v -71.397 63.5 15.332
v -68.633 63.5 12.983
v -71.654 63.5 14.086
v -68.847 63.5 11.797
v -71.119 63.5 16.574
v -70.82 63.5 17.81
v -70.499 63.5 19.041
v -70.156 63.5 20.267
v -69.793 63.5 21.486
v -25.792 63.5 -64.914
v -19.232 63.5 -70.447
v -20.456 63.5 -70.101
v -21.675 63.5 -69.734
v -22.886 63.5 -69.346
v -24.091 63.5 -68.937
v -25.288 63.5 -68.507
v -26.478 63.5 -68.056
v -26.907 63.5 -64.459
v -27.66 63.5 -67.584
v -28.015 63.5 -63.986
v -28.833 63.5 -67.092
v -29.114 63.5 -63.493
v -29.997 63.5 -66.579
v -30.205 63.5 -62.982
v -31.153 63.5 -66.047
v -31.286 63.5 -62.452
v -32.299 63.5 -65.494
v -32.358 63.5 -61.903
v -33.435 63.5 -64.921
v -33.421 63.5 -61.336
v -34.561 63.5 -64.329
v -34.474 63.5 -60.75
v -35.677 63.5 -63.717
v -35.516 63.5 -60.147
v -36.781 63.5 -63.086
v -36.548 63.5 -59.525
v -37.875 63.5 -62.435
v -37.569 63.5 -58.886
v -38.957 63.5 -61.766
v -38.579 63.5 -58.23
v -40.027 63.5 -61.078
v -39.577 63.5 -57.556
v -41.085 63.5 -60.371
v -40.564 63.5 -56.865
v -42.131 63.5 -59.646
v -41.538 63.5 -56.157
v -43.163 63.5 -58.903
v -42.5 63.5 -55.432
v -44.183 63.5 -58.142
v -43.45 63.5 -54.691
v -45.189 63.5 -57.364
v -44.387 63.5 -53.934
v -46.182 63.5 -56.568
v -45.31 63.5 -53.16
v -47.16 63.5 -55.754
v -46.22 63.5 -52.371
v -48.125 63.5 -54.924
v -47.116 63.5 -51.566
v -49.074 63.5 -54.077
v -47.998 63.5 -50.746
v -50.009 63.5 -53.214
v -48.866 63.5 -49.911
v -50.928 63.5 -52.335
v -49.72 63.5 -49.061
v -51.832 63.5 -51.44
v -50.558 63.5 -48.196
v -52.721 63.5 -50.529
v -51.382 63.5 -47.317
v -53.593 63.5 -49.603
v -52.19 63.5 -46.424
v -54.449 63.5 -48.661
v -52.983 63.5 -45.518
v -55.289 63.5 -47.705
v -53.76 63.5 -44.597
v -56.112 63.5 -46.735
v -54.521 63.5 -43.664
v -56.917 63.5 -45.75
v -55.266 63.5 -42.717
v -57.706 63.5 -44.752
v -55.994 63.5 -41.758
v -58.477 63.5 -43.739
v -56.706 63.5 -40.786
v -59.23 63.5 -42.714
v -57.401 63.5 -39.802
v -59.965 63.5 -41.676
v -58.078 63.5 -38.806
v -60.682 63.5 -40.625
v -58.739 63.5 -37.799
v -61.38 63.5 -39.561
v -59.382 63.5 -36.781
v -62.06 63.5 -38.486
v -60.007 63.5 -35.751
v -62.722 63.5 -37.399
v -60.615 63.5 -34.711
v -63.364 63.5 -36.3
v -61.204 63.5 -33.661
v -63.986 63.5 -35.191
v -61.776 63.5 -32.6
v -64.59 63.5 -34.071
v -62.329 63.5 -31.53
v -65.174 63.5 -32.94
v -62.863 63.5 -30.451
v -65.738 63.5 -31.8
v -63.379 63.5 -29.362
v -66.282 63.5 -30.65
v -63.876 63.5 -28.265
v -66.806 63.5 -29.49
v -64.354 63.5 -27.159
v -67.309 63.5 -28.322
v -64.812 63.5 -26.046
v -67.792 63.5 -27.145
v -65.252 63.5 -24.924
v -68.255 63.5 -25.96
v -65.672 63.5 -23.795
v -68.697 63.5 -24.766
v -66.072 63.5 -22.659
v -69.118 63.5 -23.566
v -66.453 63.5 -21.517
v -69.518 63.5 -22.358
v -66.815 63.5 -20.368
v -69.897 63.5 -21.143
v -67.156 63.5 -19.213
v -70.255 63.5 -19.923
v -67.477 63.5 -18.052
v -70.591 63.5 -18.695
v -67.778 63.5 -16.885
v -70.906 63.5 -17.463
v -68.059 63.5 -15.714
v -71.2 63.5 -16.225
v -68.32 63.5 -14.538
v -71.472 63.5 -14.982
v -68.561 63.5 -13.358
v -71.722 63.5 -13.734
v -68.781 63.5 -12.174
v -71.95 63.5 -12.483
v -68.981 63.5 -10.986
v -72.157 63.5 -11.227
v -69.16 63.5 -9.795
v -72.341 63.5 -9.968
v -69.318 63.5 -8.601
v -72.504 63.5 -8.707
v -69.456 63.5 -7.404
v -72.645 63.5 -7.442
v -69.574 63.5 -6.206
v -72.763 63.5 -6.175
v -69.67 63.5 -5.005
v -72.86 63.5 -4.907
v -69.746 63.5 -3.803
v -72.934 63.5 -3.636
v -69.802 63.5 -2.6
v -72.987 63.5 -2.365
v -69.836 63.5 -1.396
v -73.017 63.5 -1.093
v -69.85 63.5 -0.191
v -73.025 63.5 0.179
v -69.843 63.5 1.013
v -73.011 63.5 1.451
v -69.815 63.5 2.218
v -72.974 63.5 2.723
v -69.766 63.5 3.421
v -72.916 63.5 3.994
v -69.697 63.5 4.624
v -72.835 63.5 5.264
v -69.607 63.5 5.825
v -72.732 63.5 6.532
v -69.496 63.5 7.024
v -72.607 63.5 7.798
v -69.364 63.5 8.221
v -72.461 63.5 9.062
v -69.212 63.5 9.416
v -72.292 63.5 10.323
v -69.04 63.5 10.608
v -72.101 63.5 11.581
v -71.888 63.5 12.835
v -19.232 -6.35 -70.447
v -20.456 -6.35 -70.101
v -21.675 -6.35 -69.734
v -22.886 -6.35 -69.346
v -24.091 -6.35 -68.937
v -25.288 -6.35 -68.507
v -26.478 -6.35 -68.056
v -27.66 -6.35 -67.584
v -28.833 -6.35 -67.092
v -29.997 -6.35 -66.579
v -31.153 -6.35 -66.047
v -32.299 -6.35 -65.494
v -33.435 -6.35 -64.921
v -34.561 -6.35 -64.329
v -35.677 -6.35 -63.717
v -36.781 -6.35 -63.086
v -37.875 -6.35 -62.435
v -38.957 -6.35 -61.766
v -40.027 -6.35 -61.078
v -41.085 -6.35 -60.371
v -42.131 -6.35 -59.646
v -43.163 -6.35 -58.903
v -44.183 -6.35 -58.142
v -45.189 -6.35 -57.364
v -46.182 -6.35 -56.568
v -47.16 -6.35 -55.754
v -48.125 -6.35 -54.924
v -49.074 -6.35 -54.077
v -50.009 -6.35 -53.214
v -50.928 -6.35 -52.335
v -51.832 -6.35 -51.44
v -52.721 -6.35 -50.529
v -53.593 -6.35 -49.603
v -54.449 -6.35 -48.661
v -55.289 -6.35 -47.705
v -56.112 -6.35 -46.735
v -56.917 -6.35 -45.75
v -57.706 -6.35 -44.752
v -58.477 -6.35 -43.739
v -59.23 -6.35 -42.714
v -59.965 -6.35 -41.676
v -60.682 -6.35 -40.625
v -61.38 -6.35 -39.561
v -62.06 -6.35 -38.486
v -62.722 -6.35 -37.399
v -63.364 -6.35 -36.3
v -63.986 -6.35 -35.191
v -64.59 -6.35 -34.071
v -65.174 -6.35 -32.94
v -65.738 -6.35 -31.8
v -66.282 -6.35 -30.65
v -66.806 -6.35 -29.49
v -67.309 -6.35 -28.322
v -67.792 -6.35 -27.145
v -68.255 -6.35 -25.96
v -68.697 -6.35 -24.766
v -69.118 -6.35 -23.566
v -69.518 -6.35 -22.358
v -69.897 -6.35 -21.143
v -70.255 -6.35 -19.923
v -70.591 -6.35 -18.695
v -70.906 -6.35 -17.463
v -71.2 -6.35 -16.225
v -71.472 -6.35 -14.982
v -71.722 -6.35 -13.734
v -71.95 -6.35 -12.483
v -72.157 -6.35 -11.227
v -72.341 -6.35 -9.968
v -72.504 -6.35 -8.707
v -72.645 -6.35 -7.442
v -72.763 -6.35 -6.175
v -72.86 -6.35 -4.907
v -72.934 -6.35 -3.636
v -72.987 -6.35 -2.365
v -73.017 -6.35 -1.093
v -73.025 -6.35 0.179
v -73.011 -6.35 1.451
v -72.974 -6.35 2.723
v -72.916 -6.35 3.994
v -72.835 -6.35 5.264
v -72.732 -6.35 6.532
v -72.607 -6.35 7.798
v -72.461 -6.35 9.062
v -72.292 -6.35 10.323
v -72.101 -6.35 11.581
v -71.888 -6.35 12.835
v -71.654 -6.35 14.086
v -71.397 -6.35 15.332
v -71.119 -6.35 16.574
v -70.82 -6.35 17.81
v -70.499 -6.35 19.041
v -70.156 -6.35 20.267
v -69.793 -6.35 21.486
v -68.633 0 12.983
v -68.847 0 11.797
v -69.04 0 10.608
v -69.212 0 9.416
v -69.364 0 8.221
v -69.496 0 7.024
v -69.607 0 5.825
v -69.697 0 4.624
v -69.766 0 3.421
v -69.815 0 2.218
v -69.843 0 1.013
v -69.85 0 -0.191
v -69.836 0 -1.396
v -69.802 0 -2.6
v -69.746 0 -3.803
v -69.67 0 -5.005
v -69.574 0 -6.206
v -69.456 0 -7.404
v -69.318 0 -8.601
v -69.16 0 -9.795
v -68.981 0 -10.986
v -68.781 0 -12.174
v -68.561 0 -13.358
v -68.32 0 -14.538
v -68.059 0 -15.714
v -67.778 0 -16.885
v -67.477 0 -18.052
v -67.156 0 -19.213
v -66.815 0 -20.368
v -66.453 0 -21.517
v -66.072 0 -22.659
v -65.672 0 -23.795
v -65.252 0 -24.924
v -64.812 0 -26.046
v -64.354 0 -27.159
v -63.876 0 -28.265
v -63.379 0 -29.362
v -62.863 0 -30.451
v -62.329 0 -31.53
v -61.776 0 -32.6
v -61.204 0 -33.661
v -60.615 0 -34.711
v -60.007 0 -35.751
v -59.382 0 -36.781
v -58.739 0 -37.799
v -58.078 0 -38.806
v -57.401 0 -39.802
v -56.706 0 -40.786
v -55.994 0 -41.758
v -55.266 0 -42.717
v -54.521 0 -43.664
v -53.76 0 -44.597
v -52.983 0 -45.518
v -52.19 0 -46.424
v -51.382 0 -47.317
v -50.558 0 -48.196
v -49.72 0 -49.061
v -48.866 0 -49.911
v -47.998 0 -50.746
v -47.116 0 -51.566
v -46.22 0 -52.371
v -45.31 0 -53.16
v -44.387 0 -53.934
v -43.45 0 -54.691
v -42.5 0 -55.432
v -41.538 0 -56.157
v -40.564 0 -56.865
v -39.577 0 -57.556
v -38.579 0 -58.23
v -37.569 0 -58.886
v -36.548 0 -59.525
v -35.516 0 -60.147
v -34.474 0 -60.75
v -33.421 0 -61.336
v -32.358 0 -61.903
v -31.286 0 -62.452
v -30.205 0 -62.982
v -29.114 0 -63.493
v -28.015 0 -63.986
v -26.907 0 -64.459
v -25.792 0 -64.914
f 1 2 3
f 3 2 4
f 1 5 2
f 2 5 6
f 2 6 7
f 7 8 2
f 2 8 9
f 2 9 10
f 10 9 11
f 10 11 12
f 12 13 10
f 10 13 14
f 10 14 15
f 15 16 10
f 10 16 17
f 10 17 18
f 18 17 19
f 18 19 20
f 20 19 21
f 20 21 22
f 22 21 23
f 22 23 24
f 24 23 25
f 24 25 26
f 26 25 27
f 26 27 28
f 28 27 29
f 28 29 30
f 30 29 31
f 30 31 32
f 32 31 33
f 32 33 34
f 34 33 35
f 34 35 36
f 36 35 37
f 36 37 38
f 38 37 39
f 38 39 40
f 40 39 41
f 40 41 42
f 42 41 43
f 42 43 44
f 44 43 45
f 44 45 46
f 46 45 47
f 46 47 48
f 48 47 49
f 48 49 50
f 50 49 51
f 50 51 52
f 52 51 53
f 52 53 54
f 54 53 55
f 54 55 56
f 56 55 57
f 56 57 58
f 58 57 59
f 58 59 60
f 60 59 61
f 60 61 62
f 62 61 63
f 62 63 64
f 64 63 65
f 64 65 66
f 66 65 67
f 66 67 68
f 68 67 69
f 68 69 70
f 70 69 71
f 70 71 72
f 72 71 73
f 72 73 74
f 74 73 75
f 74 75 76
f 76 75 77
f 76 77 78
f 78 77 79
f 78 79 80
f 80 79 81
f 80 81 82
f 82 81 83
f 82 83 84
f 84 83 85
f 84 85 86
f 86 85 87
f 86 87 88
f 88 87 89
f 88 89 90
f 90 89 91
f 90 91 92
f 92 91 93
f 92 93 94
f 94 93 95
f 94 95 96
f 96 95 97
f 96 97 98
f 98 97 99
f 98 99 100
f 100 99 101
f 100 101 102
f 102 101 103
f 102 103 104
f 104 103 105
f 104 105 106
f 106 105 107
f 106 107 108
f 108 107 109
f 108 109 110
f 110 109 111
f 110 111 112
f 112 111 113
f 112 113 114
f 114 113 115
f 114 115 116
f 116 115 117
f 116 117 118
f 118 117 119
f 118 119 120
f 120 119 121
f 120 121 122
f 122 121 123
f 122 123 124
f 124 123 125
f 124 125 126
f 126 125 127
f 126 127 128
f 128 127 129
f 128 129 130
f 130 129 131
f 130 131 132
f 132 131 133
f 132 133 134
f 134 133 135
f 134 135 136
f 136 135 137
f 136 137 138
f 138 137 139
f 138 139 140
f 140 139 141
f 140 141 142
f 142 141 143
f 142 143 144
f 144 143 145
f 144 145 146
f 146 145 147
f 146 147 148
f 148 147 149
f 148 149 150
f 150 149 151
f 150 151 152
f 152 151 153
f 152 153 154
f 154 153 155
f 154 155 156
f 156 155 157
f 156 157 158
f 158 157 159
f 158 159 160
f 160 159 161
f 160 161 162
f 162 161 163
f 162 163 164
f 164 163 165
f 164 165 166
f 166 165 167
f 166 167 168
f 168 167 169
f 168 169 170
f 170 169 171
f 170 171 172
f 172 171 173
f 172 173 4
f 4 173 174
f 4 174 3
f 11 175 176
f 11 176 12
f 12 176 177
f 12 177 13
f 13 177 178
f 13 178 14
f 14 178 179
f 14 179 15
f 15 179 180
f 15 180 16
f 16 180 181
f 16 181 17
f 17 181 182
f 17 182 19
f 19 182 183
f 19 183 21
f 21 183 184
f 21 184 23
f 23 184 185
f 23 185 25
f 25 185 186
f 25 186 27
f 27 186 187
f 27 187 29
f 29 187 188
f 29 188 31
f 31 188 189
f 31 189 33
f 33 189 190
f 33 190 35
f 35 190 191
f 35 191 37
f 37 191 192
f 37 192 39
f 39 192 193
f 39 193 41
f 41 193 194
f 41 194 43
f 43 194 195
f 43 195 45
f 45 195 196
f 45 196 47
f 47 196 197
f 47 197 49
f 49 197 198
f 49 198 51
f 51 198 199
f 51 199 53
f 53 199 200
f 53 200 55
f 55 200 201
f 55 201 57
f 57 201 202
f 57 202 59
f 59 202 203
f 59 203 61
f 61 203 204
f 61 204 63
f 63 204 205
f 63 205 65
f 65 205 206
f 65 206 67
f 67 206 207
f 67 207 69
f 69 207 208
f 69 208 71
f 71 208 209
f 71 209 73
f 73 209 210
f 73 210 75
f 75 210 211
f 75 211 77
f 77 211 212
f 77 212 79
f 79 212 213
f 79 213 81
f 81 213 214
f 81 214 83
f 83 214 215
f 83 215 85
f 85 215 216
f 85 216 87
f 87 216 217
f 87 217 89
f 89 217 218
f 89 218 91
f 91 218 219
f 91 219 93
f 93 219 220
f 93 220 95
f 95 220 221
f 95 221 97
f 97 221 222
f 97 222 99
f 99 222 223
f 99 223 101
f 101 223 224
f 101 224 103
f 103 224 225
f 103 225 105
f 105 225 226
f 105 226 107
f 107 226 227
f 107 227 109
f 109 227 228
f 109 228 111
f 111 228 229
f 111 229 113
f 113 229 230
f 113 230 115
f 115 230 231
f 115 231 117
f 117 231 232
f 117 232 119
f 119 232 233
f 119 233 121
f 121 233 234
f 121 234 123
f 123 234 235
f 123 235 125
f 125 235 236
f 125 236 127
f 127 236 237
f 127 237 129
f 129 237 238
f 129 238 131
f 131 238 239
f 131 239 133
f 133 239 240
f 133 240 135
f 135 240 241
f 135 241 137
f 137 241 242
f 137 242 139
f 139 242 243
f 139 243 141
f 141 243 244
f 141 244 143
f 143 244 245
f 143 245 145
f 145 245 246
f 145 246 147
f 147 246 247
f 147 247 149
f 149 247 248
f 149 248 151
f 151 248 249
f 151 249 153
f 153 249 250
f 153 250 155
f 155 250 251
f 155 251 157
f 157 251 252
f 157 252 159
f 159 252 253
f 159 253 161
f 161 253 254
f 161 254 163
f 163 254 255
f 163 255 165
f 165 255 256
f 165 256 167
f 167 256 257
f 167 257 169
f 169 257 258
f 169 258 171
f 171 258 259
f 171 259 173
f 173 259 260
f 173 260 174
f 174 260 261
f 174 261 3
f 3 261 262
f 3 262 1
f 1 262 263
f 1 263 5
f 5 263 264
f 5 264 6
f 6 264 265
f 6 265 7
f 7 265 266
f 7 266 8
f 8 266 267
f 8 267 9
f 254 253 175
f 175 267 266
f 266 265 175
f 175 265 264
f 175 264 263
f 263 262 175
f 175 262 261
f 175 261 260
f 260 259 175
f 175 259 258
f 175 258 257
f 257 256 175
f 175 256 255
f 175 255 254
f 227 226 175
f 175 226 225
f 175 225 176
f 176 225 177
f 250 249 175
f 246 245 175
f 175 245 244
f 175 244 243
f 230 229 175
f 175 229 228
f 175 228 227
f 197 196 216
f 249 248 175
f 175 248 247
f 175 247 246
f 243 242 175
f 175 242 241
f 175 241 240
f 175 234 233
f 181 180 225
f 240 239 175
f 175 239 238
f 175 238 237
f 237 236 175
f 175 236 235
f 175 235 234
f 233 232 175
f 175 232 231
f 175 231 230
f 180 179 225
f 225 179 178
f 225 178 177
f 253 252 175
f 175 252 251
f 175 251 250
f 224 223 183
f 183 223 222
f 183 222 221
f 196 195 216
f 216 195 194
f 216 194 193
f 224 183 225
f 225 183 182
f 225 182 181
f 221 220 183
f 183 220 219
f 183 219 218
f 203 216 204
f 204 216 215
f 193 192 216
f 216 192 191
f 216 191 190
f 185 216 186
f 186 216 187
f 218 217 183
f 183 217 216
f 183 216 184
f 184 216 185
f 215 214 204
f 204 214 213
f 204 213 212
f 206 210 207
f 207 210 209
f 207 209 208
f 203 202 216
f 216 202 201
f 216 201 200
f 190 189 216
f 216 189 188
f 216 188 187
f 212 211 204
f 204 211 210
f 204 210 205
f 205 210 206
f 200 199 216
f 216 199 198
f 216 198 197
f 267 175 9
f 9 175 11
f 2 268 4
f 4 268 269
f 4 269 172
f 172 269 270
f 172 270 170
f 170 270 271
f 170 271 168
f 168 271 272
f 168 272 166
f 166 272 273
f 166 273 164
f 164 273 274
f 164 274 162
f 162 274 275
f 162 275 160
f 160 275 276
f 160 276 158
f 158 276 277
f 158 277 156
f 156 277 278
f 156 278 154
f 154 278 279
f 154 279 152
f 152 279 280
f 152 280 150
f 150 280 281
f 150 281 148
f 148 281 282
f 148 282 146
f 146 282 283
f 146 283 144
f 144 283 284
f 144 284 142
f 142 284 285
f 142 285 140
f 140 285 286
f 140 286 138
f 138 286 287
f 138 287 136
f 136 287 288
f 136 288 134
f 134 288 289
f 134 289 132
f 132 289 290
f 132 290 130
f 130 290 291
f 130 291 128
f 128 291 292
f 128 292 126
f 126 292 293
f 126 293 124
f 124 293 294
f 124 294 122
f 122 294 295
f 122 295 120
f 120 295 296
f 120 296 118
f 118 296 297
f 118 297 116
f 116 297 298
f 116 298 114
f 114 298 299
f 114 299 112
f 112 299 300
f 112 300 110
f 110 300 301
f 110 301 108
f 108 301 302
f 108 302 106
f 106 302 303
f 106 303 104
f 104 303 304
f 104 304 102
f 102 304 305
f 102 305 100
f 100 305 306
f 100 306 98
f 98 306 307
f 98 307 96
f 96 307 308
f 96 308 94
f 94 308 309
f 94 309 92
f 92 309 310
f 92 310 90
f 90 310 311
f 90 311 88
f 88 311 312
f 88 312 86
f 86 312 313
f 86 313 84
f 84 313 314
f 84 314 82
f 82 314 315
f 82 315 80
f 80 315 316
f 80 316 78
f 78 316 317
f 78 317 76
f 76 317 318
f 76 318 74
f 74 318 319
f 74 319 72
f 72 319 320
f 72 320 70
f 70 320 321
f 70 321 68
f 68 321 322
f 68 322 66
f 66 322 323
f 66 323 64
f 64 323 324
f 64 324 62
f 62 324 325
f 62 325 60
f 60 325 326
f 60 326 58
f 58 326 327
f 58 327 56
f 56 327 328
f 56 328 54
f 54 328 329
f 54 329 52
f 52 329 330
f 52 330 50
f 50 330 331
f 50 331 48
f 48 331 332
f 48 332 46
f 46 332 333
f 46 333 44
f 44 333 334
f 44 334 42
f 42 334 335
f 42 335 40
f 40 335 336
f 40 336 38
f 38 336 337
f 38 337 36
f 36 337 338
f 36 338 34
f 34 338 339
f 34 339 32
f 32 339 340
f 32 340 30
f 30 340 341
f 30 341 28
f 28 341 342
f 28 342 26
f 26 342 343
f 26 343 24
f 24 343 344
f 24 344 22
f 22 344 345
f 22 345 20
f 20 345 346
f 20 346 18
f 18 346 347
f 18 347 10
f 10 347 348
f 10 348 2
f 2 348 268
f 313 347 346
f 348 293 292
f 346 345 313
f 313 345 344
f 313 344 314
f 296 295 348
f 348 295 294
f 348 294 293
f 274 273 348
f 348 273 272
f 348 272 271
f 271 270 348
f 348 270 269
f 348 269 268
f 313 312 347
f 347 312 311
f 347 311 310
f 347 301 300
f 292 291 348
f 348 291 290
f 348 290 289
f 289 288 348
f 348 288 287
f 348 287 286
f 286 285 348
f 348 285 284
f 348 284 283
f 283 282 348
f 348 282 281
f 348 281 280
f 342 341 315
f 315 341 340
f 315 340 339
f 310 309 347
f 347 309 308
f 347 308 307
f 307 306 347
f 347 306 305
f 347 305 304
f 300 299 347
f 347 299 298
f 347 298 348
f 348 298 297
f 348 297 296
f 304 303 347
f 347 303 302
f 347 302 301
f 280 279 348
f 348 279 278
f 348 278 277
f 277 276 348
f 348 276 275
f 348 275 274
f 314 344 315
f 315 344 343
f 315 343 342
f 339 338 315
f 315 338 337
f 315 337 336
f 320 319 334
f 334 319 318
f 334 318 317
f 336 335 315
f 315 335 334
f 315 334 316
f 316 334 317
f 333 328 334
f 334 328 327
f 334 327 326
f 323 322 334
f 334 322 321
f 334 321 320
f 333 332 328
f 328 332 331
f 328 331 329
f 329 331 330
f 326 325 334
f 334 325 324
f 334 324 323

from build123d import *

# Parameters (mm, degrees)
SKETCH1_R               = 73.025
SKETCH1_R_2             = 69.85
BOSS_EXTRUDE1_DEPTH     = 63.5
SKETCH2_R               = 73.025
BOSS_EXTRUDE2_DEPTH     = 6.35
BOSS_EXTRUDE3_DEPTH     = 63.5
CUT_EXTRUDE2_START      = -6.35
CUT_EXTRUDE2_DEPTH      = 6.35
CUT_EXTRUDE2_DEPTH_BACK = 57.15
CUT_EXTRUDE5_DEPTH      = 1016


with BuildPart() as part:
    # Sketch1 → Boss-Extrude1 (new body)
    with BuildSketch(Plane(origin=(0, 0, 0), x_dir=(1, 0, 0), z_dir=(0, 1, 0))):
        Circle(SKETCH1_R)
        Circle(SKETCH1_R_2, mode=Mode.SUBTRACT)
    extrude(amount=BOSS_EXTRUDE1_DEPTH)

    # Sketch2 → Boss-Extrude2 (add)
    with BuildSketch(Plane.XZ):
        Circle(SKETCH2_R)
    extrude(amount=BOSS_EXTRUDE2_DEPTH)

    # Sketch3 → Boss-Extrude3 (add)
    with BuildSketch(Plane(origin=(0, 0, 0), x_dir=(1, 0, 0), z_dir=(0, 1, 0))):
        with BuildLine():
            Line((-67.615293174, -17.526968618), (-21.409243237, 66.488095205))
            ThreePointArc((-21.409243237, 66.488095205), (-61.204368783, 33.660774529), (-67.615293174, -17.526968618))
        make_face()
    extrude(amount=BOSS_EXTRUDE3_DEPTH)

    # Sketch4 → Cut-Extrude2 (cut, two sides)
    with BuildSketch(Plane(origin=(0, 63.5, 0), x_dir=(1, 0, 0), z_dir=(0, 1, 0)).offset(CUT_EXTRUDE2_START)) as cut_extrude2_sk:
        with BuildLine():
            Line((-25.79189716, 64.913793148), (-68.632882923, -12.982676212))
            ThreePointArc((-68.632882923, -12.982676212), (-61.204368783, 33.660774529), (-25.79189716, 64.913793148))
        make_face()
    extrude(amount=CUT_EXTRUDE2_DEPTH, mode=Mode.SUBTRACT)
    extrude(cut_extrude2_sk.sketch, amount=-CUT_EXTRUDE2_DEPTH_BACK, mode=Mode.SUBTRACT)

    # Sketch7 → Cut-Extrude5 (cut)
    with BuildSketch(Plane(origin=(0, 63.5, 0), x_dir=(1, 0, 0), z_dir=(0, 1, 0))):
        Polygon((-72.609628953, -26.608018388), (-10.171407592, 86.921512047), (114.959945388, 65.80584256), (122.548753565, -33.748740716), (41.017949176, -93.980716613), (-75.603403444, -72.676842996), align=None)
    extrude(amount=-CUT_EXTRUDE5_DEPTH, mode=Mode.SUBTRACT)


solid = part.part
